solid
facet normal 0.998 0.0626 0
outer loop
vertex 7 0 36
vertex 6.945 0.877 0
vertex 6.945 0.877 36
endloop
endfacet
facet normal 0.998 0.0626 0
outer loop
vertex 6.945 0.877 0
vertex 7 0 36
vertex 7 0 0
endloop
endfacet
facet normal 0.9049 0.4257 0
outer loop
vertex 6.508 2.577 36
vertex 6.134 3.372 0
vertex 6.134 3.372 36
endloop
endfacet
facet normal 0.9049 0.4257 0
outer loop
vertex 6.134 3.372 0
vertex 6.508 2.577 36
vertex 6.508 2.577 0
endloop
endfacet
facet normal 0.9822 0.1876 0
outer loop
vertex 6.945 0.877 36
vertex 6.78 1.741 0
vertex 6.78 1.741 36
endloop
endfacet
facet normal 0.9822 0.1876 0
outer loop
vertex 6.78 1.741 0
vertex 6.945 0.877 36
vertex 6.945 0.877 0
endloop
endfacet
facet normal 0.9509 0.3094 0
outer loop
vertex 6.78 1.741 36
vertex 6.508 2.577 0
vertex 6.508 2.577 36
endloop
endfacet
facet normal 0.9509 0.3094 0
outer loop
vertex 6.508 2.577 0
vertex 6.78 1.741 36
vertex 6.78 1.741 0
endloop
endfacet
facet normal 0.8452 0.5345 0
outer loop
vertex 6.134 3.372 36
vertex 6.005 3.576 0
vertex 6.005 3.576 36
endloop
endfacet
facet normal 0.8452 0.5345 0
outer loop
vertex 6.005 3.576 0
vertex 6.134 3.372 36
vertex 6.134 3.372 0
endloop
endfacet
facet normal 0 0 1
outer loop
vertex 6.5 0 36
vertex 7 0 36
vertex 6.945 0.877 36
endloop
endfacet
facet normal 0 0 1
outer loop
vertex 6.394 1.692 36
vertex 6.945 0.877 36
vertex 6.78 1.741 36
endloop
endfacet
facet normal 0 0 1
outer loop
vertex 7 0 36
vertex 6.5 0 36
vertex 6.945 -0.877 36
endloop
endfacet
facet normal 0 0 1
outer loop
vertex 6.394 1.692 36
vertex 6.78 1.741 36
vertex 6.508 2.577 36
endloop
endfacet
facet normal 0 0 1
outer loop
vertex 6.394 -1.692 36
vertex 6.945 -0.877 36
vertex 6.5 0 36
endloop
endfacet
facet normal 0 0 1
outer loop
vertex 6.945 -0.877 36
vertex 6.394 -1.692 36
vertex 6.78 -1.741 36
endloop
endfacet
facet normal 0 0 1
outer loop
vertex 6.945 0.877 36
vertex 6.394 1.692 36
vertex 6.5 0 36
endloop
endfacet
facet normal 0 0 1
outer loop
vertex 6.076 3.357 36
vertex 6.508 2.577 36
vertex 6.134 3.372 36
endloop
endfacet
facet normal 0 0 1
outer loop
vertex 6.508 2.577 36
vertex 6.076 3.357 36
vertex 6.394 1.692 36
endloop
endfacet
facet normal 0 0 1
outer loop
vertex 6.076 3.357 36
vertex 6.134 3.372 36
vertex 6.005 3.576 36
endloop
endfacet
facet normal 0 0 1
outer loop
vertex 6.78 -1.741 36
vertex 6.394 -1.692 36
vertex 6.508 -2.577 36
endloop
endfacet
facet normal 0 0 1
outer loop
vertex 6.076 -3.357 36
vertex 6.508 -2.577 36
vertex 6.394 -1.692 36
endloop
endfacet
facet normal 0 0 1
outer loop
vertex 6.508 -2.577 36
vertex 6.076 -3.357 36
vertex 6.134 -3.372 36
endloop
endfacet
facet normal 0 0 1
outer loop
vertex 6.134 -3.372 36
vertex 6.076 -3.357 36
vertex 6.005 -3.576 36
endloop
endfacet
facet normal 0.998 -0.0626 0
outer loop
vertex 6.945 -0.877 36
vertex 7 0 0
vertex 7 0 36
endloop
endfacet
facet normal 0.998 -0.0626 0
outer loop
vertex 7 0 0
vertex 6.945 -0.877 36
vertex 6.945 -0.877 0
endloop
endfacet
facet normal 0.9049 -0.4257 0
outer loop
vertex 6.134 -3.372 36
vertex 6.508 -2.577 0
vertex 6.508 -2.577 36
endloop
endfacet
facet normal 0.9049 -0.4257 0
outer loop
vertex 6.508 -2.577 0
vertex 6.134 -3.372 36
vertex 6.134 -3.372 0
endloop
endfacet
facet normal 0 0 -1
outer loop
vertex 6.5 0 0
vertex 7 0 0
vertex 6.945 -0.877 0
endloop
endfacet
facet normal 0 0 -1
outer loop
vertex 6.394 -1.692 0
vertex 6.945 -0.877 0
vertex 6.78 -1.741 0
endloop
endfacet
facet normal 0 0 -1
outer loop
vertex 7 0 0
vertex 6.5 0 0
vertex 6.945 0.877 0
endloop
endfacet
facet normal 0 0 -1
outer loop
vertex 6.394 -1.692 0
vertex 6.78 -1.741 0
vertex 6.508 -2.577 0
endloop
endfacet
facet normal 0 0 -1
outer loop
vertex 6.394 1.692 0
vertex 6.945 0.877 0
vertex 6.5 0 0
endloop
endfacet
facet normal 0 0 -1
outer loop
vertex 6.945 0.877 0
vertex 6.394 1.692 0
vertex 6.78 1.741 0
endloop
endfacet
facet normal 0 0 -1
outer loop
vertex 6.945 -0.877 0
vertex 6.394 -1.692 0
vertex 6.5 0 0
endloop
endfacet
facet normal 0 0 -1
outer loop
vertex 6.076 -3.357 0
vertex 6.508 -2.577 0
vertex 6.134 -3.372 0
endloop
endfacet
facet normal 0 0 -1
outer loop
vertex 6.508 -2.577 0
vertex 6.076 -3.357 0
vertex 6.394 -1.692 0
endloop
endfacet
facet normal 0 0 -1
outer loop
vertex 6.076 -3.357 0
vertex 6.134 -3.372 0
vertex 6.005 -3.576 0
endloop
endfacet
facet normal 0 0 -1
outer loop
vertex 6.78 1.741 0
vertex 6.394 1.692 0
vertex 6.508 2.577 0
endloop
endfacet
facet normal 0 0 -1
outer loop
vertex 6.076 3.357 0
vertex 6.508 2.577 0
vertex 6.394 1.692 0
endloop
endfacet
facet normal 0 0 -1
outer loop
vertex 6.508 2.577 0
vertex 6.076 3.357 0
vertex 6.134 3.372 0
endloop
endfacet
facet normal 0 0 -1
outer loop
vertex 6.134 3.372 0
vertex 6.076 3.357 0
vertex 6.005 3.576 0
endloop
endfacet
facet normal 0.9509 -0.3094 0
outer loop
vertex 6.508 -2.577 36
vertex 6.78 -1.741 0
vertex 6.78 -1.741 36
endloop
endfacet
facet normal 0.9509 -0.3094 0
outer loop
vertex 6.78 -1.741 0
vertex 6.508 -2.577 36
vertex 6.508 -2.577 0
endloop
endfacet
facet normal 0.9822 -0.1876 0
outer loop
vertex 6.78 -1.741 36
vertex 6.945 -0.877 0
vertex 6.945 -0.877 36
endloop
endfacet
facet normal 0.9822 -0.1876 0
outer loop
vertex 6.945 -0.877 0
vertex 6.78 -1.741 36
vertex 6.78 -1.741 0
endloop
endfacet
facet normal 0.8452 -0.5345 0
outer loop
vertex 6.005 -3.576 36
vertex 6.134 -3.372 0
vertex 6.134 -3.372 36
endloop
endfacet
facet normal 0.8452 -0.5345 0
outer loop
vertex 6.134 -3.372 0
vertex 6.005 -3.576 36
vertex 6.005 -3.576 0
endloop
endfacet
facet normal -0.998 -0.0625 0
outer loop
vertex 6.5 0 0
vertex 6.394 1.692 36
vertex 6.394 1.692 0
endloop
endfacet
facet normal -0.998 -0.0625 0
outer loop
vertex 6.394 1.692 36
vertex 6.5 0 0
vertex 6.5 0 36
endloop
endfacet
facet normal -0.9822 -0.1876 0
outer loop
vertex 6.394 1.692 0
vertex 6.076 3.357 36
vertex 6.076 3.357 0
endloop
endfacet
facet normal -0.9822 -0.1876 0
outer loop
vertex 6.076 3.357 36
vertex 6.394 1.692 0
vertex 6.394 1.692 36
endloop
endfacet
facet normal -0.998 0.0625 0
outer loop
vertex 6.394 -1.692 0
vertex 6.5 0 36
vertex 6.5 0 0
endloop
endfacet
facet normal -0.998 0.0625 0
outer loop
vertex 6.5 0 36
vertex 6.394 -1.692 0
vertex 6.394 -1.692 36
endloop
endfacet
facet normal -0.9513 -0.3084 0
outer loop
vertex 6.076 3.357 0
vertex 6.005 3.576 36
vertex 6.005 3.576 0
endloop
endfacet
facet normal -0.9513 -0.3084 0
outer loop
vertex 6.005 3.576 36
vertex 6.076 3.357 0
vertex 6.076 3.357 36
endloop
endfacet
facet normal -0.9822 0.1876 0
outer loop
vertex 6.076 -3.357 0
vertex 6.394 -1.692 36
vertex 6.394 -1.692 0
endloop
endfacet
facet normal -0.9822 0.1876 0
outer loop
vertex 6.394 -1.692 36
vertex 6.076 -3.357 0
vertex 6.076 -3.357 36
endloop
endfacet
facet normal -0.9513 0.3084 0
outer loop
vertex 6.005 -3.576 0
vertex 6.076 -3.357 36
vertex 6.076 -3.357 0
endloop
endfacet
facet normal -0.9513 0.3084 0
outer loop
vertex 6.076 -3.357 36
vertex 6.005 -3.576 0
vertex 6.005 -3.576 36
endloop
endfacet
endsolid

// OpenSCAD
$fn = 50;


difference() {
	union() {
		cylinder(h = 36, r = 7.0000000000);
		translate(v = [-10.0000000000, 0, 0]) {
			cylinder(h = 36, r = 7.0000000000);
		}
	}
	union() {
		cylinder(h = 36, r = 3.2500000000);
		cylinder(h = 36, r = 1.8000000000);
		cylinder(h = 36, r = 1.8000000000);
		cylinder(h = 36, r = 1.8000000000);
		translate(v = [-14.5000000000, 0, 0]) {
			hull() {
				translate(v = [-3.7500000000, 0.0000000000, 0]) {
					cylinder(h = 36, r = 7.5000000000);
				}
				translate(v = [3.7500000000, 0.0000000000, 0]) {
					cylinder(h = 36, r = 7.5000000000);
				}
				translate(v = [-3.7500000000, -0.0000000000, 0]) {
					cylinder(h = 36, r = 7.5000000000);
				}
				translate(v = [3.7500000000, -0.0000000000, 0]) {
					cylinder(h = 36, r = 7.5000000000);
				}
			}
		}
		translate(v = [-7.0000000000, 0, 0.0000000000]) {
			cylinder(h = 36, r = 13.5000000000);
		}
	}
}
